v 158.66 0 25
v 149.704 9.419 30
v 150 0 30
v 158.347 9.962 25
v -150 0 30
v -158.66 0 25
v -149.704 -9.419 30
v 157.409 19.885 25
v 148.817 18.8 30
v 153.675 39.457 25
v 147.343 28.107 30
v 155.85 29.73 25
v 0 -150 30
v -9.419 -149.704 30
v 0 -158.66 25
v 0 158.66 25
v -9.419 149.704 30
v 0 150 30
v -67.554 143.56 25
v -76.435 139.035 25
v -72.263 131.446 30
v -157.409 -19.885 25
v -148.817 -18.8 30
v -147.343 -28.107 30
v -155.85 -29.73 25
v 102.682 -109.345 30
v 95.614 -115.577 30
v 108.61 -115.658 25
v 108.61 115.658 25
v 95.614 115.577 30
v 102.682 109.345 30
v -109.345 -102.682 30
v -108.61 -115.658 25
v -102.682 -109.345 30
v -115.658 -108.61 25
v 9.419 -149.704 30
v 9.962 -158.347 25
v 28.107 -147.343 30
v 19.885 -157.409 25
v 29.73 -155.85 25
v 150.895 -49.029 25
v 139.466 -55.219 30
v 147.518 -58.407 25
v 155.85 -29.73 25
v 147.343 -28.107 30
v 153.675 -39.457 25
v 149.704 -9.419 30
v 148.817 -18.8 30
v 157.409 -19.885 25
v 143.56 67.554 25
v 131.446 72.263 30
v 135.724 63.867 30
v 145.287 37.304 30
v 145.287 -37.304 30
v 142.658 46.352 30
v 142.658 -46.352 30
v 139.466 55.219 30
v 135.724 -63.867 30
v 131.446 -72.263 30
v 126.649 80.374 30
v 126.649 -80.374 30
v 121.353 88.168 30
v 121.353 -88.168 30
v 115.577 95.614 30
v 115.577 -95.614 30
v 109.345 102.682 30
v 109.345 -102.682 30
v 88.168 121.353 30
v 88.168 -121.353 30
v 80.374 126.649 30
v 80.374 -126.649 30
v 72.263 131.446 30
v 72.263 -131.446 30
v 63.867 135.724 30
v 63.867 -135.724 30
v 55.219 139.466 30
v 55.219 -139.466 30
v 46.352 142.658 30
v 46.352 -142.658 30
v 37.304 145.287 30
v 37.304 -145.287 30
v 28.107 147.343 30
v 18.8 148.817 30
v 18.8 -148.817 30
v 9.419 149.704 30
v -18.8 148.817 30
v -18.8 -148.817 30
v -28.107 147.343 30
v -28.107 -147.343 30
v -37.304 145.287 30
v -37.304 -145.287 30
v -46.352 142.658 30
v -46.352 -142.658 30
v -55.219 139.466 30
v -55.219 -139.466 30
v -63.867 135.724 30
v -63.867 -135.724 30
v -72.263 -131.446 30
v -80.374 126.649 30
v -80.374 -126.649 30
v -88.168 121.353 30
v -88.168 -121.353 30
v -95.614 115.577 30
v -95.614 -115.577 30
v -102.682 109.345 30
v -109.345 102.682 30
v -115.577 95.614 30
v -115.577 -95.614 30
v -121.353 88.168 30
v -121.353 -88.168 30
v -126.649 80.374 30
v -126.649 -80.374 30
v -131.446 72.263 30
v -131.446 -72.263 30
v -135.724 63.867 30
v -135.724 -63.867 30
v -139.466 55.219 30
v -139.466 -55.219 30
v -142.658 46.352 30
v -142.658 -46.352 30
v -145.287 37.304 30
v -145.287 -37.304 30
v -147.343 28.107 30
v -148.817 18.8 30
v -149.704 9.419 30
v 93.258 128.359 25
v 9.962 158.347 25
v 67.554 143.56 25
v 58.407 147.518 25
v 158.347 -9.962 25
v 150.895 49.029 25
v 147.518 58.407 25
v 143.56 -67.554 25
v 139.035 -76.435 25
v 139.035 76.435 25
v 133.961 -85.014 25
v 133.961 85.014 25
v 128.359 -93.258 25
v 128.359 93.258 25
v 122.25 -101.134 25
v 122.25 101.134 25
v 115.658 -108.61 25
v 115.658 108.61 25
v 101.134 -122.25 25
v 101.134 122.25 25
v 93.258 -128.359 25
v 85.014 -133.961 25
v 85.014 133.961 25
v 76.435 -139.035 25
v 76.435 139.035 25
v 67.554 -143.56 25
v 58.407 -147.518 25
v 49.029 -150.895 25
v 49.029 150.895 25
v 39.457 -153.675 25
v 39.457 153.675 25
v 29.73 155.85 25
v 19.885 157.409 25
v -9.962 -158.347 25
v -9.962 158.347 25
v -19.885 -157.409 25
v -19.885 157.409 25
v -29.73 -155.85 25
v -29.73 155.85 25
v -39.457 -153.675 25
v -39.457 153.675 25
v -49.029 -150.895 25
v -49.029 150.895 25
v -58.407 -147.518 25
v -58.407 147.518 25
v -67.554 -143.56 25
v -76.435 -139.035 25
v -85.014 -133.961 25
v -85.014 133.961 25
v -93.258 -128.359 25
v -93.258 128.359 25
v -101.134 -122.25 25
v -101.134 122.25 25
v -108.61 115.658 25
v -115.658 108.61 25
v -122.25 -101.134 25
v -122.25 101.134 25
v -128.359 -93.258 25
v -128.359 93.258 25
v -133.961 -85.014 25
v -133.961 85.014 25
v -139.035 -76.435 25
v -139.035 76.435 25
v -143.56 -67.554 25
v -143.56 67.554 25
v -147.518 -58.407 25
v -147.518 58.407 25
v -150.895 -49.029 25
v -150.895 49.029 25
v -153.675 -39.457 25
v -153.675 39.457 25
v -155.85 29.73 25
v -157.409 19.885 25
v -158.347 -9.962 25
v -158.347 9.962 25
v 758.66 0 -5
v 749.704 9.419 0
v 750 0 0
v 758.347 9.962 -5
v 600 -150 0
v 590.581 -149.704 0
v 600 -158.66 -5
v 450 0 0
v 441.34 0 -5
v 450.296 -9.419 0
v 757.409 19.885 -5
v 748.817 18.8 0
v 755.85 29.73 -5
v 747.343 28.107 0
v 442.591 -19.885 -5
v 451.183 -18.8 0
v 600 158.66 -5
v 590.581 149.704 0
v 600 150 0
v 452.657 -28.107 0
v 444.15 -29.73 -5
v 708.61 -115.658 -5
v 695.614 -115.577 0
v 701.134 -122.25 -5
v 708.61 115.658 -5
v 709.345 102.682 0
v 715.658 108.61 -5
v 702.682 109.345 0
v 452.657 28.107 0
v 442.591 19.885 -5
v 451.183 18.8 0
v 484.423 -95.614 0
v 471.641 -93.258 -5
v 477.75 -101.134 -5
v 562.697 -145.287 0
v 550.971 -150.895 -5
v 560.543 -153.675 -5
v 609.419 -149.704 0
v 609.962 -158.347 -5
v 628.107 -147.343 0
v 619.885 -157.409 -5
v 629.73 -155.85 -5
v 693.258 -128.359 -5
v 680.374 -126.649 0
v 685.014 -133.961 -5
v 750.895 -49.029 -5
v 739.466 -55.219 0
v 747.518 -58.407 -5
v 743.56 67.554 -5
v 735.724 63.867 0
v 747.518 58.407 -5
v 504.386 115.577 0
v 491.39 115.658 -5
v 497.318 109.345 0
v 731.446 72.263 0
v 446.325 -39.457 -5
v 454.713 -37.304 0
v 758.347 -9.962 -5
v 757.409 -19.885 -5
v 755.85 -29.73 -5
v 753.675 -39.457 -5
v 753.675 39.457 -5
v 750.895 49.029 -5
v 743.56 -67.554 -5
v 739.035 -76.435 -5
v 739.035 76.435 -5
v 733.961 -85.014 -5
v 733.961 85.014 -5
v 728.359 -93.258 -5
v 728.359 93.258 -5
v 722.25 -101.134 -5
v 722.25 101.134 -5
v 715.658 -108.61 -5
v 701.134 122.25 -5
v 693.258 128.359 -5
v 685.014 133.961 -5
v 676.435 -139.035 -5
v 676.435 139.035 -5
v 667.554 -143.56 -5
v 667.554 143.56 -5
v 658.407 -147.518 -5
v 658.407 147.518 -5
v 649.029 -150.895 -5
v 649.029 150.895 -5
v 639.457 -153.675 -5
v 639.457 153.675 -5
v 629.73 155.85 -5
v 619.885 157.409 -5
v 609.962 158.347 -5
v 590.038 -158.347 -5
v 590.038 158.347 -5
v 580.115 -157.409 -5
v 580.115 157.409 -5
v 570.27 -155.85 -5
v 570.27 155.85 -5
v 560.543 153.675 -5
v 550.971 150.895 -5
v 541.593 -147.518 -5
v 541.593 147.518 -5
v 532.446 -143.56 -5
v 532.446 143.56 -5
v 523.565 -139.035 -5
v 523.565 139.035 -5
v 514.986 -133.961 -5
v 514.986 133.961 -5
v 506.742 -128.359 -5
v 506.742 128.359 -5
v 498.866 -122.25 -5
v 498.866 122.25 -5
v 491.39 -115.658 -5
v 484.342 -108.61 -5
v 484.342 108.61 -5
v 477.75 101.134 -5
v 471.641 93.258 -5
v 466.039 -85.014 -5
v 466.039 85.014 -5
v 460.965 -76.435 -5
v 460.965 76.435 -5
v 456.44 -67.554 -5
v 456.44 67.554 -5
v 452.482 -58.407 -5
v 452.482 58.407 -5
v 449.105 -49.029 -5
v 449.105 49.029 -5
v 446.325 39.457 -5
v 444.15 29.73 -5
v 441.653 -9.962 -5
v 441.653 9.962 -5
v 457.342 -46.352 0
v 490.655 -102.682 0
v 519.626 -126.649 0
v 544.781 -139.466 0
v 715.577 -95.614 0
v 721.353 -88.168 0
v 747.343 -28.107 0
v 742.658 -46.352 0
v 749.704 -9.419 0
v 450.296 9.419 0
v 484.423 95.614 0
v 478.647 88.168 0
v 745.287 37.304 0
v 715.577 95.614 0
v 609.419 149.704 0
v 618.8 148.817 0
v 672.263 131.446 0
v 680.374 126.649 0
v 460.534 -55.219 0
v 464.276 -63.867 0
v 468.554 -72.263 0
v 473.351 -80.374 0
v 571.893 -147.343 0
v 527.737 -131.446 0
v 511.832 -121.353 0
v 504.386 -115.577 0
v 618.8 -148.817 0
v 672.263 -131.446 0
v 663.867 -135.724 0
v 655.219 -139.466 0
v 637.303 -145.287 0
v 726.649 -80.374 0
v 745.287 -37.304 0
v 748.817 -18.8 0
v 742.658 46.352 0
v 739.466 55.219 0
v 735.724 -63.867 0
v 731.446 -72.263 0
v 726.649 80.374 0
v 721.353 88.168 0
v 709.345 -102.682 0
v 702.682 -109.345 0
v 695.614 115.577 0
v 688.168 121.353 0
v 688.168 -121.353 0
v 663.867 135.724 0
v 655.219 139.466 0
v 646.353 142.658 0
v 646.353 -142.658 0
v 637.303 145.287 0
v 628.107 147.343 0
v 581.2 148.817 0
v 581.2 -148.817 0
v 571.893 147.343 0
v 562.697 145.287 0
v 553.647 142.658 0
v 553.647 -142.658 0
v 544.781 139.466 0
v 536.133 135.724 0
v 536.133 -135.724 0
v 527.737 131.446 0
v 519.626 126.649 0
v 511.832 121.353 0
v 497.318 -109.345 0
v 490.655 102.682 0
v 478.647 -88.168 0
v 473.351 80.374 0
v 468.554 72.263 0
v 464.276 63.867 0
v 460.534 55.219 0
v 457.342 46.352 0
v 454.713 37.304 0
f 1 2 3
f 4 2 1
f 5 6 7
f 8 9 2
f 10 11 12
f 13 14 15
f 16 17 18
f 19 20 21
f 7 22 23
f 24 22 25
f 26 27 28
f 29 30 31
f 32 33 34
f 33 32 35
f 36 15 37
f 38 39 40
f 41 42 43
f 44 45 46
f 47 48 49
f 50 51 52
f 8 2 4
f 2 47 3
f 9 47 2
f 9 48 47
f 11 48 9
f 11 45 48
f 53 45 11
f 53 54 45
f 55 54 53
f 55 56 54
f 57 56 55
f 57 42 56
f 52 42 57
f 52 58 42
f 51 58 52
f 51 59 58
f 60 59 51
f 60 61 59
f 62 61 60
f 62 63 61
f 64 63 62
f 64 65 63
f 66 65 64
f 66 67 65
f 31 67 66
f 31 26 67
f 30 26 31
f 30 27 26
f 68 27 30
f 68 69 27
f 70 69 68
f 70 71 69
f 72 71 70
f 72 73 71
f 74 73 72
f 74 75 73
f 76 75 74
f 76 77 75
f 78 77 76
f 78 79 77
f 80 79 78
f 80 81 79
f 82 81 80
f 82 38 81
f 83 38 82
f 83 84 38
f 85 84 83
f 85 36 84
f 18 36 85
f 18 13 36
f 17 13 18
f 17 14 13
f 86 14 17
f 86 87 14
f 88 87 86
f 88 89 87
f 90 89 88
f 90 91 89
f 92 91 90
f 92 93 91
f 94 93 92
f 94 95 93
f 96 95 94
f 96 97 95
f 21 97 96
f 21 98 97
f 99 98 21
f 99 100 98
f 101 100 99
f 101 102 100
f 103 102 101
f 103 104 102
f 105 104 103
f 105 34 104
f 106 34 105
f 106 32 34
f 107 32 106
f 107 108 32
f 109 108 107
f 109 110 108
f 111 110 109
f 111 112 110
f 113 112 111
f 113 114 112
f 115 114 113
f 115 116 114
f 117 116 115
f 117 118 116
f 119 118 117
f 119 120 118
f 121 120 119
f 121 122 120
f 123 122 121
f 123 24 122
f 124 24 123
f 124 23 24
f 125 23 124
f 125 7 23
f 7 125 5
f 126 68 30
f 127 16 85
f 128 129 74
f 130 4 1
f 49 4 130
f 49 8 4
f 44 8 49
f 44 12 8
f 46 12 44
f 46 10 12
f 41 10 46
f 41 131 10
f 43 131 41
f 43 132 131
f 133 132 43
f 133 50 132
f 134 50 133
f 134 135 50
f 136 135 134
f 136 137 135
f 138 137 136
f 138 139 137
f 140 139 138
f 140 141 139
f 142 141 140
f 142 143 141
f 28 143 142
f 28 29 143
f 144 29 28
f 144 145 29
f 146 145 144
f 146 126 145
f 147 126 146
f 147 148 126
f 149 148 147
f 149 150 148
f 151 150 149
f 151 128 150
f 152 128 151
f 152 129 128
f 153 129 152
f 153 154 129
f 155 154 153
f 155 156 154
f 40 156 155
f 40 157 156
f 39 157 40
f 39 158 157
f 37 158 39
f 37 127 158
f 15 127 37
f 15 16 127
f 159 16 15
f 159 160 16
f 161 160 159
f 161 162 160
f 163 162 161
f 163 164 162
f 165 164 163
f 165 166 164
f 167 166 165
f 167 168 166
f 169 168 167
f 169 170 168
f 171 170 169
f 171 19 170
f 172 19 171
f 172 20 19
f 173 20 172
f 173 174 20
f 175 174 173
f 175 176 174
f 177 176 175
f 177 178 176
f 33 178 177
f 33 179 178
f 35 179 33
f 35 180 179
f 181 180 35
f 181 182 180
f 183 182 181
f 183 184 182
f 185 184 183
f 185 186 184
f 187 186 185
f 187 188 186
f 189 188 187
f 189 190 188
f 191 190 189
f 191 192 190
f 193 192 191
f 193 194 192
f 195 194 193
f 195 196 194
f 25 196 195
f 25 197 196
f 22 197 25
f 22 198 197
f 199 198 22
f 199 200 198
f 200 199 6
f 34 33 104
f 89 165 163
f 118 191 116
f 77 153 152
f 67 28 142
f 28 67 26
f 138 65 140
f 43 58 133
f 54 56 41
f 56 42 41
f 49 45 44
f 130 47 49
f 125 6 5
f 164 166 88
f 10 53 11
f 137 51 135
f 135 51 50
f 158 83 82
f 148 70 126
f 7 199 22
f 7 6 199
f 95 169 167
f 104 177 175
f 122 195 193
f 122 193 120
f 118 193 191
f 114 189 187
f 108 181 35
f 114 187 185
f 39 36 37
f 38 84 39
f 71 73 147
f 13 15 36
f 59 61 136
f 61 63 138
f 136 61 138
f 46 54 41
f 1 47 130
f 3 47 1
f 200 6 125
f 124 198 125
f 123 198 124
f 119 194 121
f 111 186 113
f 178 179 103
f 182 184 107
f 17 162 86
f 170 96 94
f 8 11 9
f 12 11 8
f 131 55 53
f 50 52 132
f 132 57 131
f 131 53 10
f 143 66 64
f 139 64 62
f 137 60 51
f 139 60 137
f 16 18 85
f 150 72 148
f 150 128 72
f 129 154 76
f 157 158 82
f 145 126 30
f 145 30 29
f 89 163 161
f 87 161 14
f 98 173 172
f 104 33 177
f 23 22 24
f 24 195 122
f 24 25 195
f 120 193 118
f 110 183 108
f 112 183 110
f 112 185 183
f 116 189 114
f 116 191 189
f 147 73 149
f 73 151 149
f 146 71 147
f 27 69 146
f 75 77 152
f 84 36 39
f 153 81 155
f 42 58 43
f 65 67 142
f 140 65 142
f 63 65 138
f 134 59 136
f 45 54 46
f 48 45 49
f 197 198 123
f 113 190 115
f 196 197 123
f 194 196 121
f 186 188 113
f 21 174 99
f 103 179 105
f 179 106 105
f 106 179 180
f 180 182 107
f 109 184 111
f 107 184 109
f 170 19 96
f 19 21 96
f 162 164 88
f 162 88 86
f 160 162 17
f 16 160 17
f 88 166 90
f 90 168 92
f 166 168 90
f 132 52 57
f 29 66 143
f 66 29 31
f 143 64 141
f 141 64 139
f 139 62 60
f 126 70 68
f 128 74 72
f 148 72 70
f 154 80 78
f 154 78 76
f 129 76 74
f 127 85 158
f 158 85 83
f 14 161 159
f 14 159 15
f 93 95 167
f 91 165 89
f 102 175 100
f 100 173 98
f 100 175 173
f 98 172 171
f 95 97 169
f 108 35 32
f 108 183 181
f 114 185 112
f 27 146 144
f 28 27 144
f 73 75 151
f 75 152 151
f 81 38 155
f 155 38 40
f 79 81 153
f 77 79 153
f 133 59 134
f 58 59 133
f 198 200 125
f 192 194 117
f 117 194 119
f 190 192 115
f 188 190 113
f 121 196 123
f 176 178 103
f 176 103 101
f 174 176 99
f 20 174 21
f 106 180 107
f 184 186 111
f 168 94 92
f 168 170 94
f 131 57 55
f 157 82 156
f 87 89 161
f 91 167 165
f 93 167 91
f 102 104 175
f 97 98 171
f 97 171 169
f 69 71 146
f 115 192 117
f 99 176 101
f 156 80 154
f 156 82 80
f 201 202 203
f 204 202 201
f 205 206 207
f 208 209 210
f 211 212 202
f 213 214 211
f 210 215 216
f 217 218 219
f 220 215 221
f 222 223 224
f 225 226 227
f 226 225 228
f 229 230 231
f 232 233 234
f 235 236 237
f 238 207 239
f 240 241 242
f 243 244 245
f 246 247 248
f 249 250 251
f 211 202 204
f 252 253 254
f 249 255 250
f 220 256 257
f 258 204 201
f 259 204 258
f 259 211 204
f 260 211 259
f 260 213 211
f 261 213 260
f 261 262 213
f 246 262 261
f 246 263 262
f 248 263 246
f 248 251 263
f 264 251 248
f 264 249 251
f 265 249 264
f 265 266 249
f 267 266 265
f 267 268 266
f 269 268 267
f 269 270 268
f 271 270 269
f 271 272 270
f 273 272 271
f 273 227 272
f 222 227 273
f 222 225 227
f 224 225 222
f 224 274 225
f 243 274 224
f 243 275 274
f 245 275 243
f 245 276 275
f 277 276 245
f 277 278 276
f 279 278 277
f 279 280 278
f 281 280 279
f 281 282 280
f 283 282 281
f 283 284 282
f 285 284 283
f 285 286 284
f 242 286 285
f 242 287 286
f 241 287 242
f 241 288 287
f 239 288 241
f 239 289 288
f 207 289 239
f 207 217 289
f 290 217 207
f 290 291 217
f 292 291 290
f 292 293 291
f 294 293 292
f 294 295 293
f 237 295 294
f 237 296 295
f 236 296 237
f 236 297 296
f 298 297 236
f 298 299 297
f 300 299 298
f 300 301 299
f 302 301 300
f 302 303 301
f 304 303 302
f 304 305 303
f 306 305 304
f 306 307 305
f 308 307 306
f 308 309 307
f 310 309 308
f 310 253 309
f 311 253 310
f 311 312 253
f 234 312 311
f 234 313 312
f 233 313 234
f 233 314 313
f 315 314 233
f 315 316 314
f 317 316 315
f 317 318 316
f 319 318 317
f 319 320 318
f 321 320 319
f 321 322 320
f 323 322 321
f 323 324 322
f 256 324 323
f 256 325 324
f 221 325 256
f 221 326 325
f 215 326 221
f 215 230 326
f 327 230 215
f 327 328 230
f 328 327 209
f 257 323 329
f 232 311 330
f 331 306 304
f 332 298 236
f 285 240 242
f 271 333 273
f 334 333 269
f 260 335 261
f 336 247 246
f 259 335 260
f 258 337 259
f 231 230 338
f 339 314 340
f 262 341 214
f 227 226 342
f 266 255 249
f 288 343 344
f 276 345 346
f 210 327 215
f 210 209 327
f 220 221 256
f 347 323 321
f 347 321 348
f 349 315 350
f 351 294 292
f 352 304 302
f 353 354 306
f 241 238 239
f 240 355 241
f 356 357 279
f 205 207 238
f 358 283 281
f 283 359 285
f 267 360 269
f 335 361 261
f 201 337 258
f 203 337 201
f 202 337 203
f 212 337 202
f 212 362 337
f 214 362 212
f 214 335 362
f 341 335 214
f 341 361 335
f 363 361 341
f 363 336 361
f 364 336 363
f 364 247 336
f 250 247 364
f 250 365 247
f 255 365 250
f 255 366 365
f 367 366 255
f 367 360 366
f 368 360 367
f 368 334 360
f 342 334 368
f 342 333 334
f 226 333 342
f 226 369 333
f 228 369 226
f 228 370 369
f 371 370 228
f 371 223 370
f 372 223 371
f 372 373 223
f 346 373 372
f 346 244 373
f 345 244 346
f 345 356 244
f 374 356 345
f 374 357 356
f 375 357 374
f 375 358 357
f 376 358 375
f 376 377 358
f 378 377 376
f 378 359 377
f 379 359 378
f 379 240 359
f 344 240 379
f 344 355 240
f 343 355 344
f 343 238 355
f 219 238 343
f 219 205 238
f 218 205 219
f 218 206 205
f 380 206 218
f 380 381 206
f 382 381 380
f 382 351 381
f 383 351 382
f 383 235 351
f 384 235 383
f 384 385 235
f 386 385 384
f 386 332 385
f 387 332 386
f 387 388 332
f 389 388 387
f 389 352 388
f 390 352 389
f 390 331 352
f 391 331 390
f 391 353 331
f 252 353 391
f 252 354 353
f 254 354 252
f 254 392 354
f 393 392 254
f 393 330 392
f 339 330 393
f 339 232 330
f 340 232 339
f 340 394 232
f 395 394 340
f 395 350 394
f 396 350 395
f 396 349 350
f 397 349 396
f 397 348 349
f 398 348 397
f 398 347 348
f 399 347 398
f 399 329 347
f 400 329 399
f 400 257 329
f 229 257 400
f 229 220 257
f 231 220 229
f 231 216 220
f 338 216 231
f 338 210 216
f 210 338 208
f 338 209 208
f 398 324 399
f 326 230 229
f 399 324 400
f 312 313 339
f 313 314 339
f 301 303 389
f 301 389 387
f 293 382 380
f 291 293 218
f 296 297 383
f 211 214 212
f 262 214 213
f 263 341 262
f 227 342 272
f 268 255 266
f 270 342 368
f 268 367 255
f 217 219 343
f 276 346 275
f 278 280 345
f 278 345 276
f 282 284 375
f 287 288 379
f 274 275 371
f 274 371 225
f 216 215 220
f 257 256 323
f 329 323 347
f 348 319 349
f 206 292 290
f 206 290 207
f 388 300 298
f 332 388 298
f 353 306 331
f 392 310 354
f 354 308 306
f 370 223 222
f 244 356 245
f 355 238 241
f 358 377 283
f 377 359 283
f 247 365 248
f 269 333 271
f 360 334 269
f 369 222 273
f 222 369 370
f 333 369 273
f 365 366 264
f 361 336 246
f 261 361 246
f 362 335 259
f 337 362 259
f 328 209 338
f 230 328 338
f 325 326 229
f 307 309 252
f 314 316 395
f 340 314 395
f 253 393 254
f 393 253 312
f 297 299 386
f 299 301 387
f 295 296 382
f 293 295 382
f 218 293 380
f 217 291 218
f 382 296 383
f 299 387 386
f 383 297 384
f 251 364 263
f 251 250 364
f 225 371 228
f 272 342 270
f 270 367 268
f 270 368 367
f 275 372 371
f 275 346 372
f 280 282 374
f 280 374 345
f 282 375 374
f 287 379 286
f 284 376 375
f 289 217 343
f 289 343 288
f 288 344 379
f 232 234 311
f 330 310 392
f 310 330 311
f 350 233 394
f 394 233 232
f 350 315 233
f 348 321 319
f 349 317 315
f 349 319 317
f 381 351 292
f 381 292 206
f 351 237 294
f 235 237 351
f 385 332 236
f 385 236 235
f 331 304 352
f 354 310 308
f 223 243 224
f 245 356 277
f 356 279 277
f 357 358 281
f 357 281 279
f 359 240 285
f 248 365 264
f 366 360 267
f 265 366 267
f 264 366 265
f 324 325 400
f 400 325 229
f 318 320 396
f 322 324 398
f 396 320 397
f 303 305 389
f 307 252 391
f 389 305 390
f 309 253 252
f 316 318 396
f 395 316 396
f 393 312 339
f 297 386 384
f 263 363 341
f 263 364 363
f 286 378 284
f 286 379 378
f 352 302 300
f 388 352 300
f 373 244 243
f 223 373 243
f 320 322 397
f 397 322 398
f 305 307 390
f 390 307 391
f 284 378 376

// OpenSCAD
$fn = 100;

translate([0, 0, 30])
    rotate([0, 0, 0])
        translate([0, 0, -5])
            cylinder(5, 158.66, 150, false);

translate([600, 0, 0])
    rotate([0, 0, 0])
        translate([0, 0, -5])
            cylinder(5, 158.66, 150, false);
